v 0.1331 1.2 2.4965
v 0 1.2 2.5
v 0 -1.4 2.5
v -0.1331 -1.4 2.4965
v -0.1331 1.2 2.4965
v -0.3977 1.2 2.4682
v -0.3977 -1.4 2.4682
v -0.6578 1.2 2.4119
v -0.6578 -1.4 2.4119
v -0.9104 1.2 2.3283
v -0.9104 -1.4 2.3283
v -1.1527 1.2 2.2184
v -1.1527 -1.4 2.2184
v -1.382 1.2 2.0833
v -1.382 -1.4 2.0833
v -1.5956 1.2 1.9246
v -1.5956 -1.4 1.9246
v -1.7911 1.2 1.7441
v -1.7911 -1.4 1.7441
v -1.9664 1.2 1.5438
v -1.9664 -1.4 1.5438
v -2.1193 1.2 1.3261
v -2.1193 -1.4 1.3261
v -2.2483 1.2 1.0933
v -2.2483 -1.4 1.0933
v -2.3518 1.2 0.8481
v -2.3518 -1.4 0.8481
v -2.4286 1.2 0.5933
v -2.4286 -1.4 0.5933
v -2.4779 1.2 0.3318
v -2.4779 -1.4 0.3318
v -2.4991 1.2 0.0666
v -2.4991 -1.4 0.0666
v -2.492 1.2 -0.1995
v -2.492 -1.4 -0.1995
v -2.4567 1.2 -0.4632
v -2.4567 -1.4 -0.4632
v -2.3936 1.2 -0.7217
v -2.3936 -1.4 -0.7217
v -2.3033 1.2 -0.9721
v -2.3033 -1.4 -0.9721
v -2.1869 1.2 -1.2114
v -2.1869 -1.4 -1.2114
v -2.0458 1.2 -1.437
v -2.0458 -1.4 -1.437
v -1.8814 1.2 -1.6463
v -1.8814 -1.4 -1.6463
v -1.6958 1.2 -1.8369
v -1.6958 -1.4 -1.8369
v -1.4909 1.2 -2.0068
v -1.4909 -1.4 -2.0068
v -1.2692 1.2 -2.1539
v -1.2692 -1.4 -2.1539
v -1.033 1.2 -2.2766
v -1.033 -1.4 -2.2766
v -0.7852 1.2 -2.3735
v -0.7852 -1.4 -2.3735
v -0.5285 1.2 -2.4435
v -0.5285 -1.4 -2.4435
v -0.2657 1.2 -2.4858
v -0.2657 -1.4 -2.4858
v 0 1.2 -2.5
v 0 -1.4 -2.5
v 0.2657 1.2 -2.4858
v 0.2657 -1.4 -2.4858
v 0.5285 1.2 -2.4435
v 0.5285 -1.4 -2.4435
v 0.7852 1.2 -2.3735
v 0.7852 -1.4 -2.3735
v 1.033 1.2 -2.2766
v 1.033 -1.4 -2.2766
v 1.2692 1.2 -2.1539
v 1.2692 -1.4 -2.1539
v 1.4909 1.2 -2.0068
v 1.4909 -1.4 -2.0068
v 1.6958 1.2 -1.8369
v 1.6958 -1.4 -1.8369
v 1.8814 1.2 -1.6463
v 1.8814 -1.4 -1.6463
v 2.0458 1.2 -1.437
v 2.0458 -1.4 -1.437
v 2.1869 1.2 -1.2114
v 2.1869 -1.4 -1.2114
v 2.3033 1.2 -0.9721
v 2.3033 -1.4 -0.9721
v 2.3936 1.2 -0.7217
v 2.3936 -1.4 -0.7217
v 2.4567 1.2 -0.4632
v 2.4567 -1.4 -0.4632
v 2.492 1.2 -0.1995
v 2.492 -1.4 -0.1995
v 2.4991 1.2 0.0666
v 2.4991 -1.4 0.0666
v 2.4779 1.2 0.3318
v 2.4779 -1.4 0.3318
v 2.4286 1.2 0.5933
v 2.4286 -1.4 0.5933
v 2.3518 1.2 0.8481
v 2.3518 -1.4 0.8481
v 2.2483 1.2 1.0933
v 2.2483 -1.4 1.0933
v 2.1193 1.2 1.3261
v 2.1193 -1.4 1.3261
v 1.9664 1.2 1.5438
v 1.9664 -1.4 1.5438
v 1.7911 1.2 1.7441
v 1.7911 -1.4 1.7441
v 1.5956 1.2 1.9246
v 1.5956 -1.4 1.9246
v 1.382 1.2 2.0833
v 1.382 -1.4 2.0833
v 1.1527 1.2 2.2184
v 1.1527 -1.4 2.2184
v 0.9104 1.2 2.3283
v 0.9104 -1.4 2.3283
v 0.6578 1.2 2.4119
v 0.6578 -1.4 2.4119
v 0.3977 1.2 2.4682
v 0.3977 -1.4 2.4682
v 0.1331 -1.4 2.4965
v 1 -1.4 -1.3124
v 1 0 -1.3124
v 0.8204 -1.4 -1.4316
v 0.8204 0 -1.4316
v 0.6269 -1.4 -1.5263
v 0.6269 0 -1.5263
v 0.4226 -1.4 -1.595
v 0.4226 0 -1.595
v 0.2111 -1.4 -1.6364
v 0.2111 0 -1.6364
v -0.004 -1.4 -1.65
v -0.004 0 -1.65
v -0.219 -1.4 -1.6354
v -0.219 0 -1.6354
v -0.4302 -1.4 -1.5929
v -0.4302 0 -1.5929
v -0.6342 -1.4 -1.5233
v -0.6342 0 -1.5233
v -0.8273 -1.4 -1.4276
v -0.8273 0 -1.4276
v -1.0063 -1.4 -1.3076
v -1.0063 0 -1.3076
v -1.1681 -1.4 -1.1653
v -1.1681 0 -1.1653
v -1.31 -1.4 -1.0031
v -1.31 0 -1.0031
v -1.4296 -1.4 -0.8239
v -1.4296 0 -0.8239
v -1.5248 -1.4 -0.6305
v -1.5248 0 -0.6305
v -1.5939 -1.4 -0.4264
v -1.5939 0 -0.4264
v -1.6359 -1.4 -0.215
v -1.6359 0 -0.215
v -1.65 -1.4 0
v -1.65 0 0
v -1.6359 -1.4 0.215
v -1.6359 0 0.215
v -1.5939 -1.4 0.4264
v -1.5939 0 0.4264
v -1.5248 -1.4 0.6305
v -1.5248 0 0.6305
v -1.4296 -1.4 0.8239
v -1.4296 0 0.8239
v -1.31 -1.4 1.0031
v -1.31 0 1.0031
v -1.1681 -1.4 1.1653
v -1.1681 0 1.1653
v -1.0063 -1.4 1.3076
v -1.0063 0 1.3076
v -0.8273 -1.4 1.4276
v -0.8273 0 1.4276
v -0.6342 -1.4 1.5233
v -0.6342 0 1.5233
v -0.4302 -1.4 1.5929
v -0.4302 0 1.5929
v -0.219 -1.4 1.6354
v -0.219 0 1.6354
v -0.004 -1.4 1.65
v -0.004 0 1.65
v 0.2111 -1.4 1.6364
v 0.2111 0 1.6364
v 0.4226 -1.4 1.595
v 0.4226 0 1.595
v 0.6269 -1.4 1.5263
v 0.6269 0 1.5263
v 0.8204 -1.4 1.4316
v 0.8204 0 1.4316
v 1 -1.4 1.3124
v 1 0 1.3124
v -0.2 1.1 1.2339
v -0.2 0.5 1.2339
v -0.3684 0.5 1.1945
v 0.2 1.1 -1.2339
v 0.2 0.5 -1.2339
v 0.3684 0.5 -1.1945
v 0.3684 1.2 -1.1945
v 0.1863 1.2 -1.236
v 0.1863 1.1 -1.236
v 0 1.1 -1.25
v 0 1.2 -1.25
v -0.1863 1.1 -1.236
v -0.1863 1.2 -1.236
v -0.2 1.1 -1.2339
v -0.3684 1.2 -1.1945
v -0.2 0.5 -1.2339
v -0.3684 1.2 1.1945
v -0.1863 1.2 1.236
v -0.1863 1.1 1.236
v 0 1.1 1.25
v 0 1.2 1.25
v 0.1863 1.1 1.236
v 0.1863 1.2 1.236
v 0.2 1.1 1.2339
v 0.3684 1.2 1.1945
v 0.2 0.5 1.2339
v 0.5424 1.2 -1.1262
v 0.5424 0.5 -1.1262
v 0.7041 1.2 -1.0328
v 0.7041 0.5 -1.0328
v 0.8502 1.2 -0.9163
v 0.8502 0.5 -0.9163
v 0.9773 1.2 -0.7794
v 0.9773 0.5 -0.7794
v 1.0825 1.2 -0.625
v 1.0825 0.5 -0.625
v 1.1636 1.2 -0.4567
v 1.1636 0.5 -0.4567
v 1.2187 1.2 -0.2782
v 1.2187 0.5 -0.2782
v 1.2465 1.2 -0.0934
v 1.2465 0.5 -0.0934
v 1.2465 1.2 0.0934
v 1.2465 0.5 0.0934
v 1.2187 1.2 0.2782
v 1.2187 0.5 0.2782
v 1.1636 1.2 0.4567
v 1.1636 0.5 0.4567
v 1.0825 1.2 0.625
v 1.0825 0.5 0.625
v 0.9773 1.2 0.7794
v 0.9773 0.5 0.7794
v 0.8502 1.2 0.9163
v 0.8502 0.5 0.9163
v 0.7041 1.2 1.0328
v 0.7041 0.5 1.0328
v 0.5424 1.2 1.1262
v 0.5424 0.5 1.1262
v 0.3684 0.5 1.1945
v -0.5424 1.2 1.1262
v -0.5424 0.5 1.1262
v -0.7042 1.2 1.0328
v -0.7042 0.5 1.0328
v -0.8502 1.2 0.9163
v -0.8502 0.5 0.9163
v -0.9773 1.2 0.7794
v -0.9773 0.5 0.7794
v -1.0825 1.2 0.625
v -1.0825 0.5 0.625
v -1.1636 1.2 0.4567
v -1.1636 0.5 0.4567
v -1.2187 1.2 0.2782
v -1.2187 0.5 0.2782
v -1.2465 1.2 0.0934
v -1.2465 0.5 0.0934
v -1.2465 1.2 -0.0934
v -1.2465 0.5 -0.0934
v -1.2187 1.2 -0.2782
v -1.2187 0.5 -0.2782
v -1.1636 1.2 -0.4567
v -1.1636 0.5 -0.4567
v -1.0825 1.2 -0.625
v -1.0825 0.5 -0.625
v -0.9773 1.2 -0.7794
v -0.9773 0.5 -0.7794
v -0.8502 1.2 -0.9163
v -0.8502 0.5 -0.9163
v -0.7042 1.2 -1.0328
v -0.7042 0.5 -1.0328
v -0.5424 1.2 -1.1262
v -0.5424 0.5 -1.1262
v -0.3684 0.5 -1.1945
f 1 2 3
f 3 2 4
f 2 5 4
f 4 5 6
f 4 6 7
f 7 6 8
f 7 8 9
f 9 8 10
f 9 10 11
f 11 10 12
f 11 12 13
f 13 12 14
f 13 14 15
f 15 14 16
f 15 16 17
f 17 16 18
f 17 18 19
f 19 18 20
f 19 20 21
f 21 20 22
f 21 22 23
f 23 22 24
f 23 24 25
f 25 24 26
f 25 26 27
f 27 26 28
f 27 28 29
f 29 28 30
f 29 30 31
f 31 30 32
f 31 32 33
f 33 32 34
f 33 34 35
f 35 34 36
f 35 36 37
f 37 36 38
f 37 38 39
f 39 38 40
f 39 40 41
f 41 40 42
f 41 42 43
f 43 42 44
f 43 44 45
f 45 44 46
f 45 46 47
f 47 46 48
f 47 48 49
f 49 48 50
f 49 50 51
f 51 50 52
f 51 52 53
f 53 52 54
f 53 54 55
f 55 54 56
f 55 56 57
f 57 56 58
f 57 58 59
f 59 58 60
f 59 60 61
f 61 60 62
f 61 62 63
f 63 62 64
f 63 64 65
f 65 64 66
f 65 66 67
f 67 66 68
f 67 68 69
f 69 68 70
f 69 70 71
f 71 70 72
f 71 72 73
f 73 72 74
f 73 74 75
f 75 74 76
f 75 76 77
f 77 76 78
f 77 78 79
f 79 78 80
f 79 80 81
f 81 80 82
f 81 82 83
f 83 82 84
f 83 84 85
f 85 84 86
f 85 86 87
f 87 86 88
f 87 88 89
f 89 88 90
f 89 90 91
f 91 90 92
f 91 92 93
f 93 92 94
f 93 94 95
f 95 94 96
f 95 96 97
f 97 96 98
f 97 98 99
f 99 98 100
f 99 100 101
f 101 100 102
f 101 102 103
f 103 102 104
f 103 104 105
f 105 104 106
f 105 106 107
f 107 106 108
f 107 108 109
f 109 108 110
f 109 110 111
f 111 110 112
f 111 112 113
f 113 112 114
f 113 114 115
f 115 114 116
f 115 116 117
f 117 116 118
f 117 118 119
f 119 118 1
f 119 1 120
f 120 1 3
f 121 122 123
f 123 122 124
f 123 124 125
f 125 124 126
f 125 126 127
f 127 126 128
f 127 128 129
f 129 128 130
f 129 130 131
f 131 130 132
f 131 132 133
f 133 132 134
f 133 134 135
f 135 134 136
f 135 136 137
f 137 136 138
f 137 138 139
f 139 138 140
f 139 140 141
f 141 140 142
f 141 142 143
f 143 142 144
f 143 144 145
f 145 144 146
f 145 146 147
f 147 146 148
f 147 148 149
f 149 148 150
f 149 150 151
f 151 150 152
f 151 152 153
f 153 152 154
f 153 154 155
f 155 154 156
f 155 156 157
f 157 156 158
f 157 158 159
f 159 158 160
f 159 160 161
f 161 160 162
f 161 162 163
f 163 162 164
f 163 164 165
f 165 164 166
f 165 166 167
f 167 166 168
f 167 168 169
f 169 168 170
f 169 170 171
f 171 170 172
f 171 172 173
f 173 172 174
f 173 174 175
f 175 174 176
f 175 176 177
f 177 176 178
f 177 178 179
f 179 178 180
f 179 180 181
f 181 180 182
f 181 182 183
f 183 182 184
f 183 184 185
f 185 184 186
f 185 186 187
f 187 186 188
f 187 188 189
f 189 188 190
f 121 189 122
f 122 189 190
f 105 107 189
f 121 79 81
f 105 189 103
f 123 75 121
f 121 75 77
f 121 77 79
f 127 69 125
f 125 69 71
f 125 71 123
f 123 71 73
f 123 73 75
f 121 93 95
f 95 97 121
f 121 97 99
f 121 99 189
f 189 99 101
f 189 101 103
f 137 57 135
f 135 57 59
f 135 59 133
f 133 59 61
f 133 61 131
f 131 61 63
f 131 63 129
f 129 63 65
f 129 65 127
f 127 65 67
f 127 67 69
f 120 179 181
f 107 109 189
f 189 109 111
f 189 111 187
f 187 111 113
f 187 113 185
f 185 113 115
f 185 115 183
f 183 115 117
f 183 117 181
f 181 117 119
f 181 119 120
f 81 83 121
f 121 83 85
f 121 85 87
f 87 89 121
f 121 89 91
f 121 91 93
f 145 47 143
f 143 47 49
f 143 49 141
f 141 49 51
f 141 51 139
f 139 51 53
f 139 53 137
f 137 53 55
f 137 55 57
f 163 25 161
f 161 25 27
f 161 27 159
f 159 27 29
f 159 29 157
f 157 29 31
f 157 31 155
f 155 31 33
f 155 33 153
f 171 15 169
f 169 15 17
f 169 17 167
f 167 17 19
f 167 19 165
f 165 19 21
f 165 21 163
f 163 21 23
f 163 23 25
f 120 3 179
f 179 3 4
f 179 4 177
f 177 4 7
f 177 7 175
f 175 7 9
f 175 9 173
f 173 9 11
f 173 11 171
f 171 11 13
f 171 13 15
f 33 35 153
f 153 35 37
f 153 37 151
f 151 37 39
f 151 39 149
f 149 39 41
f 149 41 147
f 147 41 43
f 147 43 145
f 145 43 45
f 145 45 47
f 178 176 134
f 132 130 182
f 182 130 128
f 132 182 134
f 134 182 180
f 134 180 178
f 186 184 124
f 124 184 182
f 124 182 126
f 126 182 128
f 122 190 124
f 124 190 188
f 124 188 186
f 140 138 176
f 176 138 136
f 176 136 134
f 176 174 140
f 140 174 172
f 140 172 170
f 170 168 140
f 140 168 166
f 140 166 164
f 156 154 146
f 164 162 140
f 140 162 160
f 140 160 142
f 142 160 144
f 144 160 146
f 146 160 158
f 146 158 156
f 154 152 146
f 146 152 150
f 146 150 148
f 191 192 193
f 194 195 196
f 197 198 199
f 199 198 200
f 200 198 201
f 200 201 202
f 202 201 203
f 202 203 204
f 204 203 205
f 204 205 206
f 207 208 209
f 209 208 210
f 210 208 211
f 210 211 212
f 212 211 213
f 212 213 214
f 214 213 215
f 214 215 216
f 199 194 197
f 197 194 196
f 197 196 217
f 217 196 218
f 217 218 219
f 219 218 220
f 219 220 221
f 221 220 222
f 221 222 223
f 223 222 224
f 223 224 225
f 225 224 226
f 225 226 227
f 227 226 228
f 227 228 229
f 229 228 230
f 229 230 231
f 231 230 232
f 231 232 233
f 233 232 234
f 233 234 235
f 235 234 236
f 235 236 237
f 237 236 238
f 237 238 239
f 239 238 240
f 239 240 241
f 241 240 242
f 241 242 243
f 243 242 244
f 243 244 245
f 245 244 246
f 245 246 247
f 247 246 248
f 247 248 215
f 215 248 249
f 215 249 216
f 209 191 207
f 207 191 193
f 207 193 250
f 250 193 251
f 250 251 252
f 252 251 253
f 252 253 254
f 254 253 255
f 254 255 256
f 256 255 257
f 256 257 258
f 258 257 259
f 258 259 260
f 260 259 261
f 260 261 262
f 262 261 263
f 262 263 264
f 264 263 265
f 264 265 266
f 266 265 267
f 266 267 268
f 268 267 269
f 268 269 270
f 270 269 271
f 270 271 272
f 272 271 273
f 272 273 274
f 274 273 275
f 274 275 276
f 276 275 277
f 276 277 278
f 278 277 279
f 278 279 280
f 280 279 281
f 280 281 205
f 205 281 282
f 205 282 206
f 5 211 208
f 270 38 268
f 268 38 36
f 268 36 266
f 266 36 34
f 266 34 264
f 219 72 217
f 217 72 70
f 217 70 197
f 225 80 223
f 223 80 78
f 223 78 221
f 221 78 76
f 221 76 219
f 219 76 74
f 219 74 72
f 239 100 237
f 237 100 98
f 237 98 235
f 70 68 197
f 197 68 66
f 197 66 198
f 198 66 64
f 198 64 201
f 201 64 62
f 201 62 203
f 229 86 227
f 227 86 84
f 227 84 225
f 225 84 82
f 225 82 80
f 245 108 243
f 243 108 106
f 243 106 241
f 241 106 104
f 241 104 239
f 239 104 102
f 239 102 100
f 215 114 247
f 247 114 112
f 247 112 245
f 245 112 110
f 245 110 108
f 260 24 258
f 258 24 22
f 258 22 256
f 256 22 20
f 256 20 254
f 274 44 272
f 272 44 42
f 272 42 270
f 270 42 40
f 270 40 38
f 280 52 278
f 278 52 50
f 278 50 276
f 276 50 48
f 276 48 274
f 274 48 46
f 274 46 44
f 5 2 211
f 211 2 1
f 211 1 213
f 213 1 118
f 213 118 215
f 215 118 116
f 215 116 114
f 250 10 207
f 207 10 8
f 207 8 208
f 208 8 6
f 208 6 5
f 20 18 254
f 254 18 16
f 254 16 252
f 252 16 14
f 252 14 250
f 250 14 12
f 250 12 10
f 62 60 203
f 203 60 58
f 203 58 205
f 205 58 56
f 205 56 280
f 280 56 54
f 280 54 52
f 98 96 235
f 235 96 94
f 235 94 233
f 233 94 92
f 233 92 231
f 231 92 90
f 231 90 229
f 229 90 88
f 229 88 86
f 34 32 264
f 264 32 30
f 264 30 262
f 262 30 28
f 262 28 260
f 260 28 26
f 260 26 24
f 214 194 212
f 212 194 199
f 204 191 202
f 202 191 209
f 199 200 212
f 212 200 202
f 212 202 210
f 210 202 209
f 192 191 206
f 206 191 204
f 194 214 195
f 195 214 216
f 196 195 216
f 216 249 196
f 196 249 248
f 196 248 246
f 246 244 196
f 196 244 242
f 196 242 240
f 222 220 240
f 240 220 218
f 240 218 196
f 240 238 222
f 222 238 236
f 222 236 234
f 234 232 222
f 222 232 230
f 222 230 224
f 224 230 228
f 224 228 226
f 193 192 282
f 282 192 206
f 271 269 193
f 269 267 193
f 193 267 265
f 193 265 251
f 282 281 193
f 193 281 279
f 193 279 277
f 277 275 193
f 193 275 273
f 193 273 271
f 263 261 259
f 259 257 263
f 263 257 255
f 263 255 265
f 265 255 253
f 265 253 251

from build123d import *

# Parameters (mm, degrees)
SKETCH_1_R      = 2.5
EXTRUDE_1_DEPTH = 0.5
EXTRUDE_START   = -1.4
SKETCH_1_3_R    = 2.5
EXTRUDE_2_DEPTH = 1.4
SKETCH_2_W      = 0.4
SKETCH_2_H      = 2.5
EXTRUDE_3_DEPTH = 0.6
SKETCH_2_3_R    = 2.5
SKETCH_2_3_R_2  = 1.25
EXTRUDE_4_DEPTH = 0.7


with BuildPart() as part:
    # 草图1 → 凸台-拉伸1 (new body)
    with BuildSketch(Plane(origin=(0, 0, 0), x_dir=(1, 0, 0), z_dir=(0, 1, 0))):
        Circle(SKETCH_1_R)
    extrude(amount=EXTRUDE_1_DEPTH)

    # 草图1<3> → 凸台-拉伸2 (add)
    with BuildSketch(Plane(origin=(0, 0, 0), x_dir=(1, 0, 0), z_dir=(0, 1, 0)).offset(EXTRUDE_START)):
        Circle(SKETCH_1_3_R)
        with BuildLine():
            Line((1, 1.312440475), (1, -1.312440475))
            ThreePointArc((1, -1.312440475), (-1.65, 0), (1, 1.312440475))
        make_face(mode=Mode.SUBTRACT)
    extrude(amount=EXTRUDE_2_DEPTH)

    # 草图2 → 凸台-拉伸3 (add)
    with BuildSketch(Plane(origin=(0, 0.5, 0), x_dir=(1, 0, 0), z_dir=(0, 1, 0))):
        Rectangle(SKETCH_2_W, SKETCH_2_H)
    extrude(amount=EXTRUDE_3_DEPTH)

    # 草图2<3> → 凸台-拉伸4 (add)
    with BuildSketch(Plane(origin=(0, 0.5, 0), x_dir=(1, 0, 0), z_dir=(0, 1, 0))):
        Circle(SKETCH_2_3_R)
        Circle(SKETCH_2_3_R_2, mode=Mode.SUBTRACT)
    extrude(amount=EXTRUDE_4_DEPTH)


solid = part.part
